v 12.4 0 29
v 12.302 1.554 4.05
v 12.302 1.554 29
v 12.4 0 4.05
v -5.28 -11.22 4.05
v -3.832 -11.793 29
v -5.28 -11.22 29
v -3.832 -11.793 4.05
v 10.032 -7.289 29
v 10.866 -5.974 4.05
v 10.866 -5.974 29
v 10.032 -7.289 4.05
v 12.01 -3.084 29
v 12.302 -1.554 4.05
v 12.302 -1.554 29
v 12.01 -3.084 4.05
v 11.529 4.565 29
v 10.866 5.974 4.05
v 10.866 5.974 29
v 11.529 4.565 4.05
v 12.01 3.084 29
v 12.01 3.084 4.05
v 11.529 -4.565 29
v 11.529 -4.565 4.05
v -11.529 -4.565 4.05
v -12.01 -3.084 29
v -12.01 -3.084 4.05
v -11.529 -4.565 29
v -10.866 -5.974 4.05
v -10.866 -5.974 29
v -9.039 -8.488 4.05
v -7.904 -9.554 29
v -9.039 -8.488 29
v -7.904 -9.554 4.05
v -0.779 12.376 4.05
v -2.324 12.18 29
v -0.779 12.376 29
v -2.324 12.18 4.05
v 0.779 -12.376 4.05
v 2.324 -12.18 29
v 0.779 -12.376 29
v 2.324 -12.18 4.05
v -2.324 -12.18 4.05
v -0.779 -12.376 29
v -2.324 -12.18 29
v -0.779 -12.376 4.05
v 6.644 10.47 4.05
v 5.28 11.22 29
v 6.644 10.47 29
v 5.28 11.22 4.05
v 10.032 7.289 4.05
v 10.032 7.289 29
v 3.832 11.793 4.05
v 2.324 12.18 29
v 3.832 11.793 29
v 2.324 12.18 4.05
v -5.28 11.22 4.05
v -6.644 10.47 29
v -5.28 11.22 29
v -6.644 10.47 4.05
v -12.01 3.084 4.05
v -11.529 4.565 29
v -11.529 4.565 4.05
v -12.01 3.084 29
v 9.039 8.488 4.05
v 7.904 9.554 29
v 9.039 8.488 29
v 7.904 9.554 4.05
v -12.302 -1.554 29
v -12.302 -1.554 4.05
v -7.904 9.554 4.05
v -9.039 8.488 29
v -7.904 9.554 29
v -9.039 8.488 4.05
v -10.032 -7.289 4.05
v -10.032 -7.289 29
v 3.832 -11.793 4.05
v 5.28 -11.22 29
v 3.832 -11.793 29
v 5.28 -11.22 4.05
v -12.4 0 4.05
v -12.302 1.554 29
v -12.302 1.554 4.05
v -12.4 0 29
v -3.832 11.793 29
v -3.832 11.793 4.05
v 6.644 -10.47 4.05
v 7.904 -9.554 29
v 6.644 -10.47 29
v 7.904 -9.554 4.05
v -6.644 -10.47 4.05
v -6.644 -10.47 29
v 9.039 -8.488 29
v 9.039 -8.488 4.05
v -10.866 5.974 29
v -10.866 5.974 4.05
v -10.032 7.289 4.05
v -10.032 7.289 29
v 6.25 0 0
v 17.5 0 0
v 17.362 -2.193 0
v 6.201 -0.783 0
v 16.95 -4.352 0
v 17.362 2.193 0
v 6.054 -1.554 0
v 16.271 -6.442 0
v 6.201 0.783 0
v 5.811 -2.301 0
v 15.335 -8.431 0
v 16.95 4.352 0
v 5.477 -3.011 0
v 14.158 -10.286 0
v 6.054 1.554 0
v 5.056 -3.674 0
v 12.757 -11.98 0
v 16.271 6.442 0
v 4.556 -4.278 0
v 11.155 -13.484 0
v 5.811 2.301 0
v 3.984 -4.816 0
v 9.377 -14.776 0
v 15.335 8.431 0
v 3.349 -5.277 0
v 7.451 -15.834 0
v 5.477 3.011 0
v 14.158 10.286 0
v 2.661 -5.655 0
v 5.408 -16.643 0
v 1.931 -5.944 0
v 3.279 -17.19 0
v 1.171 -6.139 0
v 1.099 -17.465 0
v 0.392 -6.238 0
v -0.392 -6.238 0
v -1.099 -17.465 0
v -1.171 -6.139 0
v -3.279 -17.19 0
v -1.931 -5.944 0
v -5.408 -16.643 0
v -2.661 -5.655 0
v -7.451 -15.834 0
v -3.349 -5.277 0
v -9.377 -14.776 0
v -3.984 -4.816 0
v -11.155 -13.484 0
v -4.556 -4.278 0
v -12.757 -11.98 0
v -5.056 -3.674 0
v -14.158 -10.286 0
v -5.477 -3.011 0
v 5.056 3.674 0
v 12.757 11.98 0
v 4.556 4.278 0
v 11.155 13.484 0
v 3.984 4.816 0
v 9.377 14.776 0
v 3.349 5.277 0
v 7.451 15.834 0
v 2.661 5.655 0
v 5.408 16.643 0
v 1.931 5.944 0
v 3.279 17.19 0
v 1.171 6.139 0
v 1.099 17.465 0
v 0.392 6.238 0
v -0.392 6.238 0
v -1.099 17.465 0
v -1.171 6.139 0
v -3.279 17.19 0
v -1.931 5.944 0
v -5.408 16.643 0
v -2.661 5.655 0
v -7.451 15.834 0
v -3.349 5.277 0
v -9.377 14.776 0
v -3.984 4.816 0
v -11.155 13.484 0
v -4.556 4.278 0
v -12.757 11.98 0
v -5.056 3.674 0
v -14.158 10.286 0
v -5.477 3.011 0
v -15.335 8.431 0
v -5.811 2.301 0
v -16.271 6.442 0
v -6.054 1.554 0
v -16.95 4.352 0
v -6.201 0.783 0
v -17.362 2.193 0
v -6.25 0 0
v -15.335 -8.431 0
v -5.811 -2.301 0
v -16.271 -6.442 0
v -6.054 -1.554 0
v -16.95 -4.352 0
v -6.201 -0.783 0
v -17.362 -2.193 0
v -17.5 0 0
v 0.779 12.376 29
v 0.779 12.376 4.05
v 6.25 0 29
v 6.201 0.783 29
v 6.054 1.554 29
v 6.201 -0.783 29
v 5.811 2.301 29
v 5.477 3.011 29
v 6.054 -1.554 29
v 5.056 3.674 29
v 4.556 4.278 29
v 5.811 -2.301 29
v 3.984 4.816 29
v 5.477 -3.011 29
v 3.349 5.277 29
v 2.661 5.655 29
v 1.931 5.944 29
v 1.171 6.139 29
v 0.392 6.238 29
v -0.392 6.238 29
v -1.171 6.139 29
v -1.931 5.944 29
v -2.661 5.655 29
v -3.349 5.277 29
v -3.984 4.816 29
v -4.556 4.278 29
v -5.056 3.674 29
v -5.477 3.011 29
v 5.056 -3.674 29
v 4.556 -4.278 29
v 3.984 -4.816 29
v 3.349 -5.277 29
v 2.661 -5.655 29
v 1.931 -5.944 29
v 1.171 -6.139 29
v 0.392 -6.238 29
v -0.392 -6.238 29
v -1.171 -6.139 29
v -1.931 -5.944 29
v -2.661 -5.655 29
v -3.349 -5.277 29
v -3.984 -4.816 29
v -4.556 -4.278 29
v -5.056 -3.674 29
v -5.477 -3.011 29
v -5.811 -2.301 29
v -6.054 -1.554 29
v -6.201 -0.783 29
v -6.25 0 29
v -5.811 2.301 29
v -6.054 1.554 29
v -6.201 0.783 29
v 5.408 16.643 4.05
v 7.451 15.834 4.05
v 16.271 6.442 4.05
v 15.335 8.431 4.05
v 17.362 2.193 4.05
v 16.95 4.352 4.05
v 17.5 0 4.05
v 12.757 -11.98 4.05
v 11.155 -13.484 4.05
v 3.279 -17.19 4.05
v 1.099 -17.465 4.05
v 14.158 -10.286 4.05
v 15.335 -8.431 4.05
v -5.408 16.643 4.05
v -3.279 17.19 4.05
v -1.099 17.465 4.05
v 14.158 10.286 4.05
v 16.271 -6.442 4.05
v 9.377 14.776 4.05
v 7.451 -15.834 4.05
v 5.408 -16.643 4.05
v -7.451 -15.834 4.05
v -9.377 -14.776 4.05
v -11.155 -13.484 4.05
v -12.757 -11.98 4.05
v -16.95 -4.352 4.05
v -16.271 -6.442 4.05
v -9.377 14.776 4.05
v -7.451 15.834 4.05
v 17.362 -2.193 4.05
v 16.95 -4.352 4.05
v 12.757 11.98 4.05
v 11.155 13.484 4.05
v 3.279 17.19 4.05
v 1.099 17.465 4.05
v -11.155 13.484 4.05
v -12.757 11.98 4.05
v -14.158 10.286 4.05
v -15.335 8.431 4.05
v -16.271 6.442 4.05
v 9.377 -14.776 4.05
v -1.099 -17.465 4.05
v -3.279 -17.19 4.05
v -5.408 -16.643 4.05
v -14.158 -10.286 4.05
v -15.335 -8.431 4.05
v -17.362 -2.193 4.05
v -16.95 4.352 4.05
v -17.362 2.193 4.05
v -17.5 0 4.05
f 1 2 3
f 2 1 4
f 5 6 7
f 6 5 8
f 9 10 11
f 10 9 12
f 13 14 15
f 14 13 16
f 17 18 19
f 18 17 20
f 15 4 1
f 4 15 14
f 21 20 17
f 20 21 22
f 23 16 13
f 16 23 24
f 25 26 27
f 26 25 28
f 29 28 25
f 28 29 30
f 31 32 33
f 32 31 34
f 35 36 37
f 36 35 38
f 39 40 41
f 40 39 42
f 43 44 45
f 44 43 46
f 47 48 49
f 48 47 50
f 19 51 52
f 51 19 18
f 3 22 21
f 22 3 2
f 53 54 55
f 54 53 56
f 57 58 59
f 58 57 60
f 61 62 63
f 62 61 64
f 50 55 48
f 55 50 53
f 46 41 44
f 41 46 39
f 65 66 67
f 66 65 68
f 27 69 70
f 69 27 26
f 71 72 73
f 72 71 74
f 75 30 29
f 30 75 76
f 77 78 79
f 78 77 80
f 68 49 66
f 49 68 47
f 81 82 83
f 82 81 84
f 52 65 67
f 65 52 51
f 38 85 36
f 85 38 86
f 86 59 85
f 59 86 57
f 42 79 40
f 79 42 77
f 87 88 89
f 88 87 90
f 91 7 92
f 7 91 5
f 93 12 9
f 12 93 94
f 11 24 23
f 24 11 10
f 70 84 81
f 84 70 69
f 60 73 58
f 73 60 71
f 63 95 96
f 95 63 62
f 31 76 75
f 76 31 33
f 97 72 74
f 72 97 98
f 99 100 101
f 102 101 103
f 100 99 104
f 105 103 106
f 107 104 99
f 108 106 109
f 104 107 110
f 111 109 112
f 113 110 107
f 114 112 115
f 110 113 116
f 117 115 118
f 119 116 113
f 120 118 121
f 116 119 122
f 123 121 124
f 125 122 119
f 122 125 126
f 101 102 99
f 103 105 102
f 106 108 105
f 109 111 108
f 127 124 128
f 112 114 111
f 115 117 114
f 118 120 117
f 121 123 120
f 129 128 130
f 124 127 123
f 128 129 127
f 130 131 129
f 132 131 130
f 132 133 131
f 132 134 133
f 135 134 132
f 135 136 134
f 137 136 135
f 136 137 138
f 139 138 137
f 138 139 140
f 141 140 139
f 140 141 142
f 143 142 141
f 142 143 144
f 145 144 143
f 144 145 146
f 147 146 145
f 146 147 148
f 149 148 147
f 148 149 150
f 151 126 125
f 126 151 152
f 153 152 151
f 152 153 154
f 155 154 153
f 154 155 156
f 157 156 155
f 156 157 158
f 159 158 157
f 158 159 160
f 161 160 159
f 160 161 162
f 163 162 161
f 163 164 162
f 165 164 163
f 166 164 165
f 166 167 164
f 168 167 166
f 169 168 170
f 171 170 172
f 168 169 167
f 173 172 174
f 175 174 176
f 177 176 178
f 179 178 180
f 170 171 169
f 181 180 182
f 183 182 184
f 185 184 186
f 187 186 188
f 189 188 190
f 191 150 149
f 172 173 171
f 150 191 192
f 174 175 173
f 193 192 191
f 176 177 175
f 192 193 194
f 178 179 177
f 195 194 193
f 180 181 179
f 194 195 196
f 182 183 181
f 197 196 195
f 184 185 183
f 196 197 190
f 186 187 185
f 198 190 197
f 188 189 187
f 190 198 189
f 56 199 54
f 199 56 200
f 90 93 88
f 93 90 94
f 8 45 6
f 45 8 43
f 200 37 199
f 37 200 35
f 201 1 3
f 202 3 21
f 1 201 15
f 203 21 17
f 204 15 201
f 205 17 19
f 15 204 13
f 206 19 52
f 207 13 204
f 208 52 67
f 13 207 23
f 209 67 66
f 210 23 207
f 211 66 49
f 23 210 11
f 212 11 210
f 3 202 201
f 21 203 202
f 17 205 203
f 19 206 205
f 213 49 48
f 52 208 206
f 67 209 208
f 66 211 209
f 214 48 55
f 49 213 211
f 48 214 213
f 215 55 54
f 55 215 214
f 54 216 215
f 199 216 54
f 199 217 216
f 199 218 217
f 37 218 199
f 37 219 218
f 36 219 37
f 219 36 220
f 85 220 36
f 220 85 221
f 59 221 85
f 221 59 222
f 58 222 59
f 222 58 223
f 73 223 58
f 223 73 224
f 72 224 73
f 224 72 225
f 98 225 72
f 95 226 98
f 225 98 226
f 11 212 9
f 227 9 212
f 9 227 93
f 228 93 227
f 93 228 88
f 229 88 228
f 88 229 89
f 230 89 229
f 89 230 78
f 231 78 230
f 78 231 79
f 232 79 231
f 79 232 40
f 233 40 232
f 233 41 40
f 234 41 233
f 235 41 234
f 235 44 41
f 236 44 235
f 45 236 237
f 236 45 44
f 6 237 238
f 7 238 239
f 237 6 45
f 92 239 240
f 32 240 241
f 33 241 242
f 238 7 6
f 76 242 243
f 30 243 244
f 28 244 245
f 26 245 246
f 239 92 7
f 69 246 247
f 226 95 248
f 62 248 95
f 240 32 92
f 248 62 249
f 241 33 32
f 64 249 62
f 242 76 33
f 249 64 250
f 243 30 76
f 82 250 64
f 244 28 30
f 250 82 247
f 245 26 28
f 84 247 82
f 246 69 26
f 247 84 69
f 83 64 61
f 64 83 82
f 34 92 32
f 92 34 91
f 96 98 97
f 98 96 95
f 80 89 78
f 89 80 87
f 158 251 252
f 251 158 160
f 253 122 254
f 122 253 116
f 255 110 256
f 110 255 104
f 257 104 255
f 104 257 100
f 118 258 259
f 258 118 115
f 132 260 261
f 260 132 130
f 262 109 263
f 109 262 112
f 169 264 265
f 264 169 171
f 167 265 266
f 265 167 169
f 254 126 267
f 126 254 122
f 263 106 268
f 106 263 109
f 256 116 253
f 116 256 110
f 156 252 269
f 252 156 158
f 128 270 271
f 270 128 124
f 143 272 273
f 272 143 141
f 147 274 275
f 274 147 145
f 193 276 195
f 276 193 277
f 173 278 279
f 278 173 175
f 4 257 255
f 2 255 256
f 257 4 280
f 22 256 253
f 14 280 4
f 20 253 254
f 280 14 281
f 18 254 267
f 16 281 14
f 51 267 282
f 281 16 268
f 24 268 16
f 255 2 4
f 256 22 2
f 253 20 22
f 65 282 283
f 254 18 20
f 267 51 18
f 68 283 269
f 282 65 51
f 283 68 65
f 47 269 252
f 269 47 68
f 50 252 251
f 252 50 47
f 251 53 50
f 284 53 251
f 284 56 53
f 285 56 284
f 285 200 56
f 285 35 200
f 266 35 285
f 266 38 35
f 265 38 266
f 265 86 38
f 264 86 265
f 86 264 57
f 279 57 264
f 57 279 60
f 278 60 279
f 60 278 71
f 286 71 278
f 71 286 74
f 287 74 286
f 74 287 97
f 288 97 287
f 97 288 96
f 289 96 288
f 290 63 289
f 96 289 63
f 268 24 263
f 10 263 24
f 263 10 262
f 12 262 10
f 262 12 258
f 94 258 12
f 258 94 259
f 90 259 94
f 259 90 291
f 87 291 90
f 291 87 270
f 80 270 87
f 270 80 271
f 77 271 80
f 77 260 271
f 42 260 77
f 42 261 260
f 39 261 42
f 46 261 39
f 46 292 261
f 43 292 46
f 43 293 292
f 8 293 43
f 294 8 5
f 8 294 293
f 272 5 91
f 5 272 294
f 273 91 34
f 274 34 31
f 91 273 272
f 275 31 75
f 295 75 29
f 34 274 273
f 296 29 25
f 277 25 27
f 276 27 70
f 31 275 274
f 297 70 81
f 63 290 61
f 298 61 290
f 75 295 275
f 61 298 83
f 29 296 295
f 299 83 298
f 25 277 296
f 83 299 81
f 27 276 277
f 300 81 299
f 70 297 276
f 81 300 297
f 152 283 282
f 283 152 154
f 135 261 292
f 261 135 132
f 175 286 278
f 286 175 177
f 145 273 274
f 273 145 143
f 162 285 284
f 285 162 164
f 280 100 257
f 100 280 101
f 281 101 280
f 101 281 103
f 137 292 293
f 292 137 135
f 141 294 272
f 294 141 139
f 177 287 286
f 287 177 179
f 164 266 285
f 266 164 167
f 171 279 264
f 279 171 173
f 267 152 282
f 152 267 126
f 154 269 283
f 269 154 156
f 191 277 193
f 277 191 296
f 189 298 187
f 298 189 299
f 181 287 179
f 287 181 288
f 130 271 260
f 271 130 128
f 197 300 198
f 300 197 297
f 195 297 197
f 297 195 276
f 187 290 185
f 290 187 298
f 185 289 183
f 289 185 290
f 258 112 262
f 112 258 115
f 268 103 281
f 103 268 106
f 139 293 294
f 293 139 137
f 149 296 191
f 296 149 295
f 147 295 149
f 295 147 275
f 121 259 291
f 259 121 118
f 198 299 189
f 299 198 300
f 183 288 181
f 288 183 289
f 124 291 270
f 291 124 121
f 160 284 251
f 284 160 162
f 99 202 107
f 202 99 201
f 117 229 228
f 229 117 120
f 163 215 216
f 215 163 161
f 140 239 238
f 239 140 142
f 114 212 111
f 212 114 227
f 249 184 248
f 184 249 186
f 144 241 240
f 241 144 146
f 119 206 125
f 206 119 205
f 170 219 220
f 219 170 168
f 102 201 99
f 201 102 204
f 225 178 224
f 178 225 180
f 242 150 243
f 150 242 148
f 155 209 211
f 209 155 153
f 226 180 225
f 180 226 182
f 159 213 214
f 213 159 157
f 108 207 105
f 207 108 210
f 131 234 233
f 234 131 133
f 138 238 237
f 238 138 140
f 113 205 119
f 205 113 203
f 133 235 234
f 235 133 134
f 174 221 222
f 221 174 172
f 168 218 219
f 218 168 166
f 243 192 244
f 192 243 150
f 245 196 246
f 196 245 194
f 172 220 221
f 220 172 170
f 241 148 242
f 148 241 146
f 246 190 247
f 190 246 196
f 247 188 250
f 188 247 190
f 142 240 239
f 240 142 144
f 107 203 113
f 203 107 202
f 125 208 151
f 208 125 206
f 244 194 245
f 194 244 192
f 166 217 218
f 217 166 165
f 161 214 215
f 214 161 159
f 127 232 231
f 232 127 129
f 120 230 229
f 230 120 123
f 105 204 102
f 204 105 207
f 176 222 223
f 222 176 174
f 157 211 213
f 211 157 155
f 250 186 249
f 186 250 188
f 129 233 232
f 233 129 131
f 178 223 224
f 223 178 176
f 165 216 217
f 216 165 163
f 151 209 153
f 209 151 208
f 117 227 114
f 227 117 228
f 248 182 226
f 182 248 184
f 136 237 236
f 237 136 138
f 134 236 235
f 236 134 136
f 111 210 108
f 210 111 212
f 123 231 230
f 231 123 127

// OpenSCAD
// an adapter for culture tubes to HACH 2100Q

$fn=50;

//glass capped tube 
diamtube=12+0.5;  

//hach vial 
diam=24.8;
depth=29; //lighpath starts 29mm deep, so we will have safety=hight of lip

//lip
diamlip=35;
hlip=4.05;

difference(){
    union(){
        //body
        translate([0,0,depth/2]) cylinder(h=depth,d=diam, center=true);
        //lip
        translate([0,0,hlip/2]) cylinder(h=hlip, d=diamlip, center=true);
    };
//space for tube
cylinder(h=depth*10, d=diamtube, center=true);
   
 };
